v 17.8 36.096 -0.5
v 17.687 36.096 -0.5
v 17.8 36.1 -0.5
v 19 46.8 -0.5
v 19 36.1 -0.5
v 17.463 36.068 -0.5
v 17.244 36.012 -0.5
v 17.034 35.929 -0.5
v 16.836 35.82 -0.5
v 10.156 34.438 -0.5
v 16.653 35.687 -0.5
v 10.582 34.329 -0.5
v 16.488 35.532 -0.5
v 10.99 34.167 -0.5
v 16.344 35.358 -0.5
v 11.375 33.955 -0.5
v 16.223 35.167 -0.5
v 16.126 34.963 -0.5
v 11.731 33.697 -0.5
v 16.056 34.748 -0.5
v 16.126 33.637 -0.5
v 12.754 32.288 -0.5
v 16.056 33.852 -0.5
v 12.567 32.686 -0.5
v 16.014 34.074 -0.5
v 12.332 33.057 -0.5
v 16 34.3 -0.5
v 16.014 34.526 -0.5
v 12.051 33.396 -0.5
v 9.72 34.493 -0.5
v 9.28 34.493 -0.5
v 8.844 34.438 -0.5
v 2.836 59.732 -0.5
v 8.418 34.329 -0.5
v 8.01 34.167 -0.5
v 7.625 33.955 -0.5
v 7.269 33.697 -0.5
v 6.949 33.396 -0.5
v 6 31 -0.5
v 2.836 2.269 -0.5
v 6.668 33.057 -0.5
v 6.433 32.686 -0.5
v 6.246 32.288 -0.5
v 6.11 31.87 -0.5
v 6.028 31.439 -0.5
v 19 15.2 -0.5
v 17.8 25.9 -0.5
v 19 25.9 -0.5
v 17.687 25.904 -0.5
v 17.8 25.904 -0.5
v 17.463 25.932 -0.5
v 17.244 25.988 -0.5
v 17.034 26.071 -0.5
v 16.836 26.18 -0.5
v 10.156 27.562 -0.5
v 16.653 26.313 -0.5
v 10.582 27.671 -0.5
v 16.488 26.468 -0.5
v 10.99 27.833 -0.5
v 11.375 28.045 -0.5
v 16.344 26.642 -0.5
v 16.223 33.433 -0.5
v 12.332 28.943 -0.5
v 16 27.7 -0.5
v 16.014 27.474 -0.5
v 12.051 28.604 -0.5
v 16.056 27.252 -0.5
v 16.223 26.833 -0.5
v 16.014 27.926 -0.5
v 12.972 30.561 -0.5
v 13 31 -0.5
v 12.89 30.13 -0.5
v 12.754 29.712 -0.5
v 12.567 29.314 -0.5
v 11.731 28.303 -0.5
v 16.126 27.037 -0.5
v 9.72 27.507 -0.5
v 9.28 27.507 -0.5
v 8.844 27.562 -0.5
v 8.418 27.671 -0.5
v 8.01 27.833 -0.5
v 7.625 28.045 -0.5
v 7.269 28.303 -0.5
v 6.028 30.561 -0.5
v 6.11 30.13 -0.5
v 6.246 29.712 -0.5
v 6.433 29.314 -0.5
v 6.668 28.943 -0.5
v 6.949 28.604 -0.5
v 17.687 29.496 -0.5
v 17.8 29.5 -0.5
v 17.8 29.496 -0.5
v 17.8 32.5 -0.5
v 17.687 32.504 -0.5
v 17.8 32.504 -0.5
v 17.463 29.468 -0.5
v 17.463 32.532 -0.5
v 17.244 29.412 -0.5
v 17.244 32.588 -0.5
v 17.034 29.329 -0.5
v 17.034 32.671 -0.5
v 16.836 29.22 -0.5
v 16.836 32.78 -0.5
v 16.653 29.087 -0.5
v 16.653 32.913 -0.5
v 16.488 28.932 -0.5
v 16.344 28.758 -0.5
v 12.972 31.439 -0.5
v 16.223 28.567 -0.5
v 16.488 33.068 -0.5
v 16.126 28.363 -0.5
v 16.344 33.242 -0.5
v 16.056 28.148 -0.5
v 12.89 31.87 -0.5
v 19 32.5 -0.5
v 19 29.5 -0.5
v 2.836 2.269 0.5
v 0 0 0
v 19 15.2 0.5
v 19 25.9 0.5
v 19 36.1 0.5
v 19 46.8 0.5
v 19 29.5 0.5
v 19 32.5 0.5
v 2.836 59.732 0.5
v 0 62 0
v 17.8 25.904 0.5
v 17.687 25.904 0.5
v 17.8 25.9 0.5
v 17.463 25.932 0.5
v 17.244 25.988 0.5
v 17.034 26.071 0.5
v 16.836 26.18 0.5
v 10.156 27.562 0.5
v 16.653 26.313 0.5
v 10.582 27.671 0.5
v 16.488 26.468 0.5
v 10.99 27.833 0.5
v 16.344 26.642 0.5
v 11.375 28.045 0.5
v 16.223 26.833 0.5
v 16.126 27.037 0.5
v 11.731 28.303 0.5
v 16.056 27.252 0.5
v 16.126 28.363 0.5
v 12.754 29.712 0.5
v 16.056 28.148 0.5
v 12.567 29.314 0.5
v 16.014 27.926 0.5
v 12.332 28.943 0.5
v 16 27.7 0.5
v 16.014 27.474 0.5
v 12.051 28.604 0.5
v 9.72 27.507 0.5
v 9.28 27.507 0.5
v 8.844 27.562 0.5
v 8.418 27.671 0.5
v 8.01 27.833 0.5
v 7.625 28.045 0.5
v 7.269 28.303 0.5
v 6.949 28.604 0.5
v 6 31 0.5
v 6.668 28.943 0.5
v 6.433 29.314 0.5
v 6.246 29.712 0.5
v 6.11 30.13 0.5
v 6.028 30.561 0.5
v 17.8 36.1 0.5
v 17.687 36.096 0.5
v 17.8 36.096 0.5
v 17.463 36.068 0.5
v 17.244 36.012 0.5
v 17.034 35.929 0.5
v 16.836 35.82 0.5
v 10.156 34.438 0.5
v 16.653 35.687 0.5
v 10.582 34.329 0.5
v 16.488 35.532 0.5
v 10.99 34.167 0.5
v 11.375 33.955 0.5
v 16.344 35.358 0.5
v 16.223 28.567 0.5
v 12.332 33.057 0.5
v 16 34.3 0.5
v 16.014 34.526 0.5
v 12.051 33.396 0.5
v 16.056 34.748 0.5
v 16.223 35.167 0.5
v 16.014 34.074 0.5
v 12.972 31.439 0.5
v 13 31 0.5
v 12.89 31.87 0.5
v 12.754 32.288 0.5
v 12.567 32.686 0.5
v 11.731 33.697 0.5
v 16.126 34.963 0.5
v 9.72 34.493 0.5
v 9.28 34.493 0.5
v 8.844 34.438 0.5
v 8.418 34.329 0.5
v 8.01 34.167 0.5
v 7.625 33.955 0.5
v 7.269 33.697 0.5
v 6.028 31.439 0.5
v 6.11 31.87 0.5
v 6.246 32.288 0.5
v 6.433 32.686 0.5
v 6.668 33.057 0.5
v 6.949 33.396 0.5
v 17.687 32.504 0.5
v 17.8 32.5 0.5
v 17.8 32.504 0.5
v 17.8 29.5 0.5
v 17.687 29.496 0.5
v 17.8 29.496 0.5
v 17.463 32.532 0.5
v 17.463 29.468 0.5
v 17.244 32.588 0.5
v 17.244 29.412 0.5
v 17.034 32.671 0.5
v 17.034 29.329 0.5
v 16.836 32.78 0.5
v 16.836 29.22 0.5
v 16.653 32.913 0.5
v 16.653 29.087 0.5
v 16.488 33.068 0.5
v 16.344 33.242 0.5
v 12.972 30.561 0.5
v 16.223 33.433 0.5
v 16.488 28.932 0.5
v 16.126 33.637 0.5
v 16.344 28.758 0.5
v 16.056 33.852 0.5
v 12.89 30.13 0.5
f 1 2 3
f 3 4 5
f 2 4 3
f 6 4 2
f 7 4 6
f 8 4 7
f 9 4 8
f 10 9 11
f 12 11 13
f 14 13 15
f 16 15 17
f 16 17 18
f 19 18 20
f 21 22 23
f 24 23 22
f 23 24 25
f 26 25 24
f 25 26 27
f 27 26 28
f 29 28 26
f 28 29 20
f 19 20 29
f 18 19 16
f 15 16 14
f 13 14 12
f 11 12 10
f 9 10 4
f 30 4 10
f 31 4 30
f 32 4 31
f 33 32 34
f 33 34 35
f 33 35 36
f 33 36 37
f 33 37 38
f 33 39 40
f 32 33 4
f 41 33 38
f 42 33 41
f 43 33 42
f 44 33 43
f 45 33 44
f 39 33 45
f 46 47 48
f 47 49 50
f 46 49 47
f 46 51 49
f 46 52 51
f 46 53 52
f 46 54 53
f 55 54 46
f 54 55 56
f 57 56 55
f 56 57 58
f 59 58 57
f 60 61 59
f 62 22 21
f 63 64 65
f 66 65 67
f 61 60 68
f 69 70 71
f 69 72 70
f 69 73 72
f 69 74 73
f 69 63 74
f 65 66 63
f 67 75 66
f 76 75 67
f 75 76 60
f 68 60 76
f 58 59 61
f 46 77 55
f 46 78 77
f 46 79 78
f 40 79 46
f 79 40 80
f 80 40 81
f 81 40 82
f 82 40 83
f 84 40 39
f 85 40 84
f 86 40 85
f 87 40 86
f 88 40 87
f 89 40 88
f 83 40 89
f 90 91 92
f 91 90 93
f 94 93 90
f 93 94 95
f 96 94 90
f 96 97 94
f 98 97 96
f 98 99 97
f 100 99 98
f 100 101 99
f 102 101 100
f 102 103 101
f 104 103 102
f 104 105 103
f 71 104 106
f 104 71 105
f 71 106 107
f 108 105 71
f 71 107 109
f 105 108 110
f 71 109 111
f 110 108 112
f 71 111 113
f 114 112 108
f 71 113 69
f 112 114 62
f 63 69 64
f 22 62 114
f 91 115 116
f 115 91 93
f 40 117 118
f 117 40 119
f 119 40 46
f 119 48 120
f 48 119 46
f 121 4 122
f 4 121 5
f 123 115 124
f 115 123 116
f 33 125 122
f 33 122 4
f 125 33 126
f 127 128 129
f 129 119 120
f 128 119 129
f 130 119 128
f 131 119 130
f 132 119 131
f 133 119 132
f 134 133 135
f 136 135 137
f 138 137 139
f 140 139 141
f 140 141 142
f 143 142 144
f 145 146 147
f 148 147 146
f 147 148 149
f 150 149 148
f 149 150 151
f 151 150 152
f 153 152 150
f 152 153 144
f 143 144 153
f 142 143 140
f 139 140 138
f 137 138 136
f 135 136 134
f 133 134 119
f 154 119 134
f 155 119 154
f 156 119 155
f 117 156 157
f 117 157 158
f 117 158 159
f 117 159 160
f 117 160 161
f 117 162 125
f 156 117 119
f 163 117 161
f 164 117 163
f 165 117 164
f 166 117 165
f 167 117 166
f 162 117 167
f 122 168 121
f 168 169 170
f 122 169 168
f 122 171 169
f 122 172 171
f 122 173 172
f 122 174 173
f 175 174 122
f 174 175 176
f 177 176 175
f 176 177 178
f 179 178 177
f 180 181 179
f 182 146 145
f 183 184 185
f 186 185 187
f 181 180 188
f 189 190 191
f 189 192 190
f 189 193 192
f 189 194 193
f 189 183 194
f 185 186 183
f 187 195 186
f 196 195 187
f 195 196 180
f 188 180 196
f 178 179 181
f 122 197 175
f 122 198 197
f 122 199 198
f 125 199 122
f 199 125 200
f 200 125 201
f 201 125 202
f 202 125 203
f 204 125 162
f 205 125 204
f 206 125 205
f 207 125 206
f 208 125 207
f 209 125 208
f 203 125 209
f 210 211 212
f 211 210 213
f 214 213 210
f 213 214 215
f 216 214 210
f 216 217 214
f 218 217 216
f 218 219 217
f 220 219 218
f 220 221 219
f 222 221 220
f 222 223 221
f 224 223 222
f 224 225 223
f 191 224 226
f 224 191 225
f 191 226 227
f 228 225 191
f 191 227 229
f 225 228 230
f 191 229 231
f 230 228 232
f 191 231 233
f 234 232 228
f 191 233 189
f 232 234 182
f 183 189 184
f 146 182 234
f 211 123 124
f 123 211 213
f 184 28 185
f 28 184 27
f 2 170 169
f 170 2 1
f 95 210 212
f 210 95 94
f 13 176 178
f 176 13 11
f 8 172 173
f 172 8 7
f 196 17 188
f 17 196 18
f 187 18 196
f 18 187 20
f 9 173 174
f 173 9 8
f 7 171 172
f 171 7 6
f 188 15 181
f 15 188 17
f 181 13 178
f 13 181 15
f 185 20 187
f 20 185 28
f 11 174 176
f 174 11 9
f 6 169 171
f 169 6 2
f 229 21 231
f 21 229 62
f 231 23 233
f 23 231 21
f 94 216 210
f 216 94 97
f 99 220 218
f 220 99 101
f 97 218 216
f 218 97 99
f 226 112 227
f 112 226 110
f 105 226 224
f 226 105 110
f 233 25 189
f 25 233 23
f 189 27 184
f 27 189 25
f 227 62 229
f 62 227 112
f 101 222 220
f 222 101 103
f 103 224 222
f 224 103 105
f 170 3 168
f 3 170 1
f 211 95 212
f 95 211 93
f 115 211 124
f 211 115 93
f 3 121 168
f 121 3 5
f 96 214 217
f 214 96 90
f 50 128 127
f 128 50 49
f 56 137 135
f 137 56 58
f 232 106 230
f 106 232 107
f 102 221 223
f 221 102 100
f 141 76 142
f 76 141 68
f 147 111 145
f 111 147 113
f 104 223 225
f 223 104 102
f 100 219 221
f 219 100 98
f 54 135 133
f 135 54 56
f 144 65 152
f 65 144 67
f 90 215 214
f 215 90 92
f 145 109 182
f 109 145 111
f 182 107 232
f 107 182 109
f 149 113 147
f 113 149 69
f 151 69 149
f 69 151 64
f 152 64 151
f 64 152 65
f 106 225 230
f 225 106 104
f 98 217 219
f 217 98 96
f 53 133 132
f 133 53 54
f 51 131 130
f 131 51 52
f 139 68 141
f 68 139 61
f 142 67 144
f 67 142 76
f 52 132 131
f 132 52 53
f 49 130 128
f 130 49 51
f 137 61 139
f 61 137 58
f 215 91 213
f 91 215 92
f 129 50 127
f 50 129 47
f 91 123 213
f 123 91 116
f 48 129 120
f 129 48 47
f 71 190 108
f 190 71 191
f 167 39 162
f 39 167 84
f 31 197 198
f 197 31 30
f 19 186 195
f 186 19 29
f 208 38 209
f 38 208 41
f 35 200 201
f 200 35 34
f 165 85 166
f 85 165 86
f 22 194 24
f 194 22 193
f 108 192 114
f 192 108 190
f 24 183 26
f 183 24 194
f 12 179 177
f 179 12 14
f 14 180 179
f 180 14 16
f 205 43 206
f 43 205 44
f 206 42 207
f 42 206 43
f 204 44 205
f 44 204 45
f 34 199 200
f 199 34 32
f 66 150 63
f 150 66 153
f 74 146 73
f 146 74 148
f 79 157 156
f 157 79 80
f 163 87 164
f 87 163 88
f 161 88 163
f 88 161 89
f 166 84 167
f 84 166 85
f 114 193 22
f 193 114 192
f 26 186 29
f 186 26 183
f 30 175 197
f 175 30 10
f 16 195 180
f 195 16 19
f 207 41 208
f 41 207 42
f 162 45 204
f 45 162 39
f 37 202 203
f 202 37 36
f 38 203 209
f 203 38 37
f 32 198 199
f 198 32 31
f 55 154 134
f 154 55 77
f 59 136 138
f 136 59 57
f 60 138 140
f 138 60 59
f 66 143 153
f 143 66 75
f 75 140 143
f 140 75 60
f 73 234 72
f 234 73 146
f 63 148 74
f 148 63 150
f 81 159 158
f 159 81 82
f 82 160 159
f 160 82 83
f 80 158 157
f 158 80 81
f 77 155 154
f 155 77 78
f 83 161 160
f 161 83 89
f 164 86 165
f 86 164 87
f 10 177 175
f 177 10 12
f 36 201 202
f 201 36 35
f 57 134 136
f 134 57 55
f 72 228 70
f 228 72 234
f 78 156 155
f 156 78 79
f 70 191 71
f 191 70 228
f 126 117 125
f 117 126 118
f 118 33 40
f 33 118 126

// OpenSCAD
// Stanley Knife Blade
// (units mm)
// 
//
//

lenCE=62;    	// Length of the cutting edge
lenBE=31.6;		// Length of back edge 
width=19;		// Width (cutting edge to back edge)
mid=lenCE/2;		// Midpoint 
rb=3.6/2;    	// Radius of recess
rdepth=3;		// Recess depth;
rfm=3/2 + rb; // Distance of middle of the recess from mid len  
bladethickness=1; // really 0.6
cut=bladethickness+4;

// optional hole in the middle for screws
holerad = 7.0/2;
holedepth = 13; // from top of blade

// Outline of the blade
module bladeOL() {
	linear_extrude(height=bladethickness)
	  polygon(points=[[0,0],[0,lenCE],[width,mid+(lenBE/2)],[width,mid-(lenBE/2)]]);
}

// Outline and Cutouts
module bladeCU(useAsDifference) {
local_rb = useAsDifference ? rb-0.3 : rb;
local_rfm = useAsDifference ? rfm : rfm;
local_holerad = useAsDifference ? holerad-0.3 : holerad;

	difference () {

		bladeOL();

    // blade holder hole 1
		translate([width-(rdepth-local_rb),mid+local_rfm,-1]) cylinder(r=local_rb,h=cut,$fn=50);
       // blade holder depth hole 1
		translate([width-(rdepth-local_rb),mid+local_rfm-local_rb,-1]) cube([width,local_rb*2,cut]);

    // blade holder hole 2
		translate([width-(rdepth-local_rb),mid-local_rfm,-1]) cylinder(r=local_rb,h=cut,$fn=50);
        // blade holder depth hole 2
		translate([width-(rdepth-local_rb),mid-local_rfm-local_rb,-1]) cube([width,local_rb*2,cut]);

    // middle hole
		translate([width-(holedepth-local_holerad),mid,-1]) cylinder(r=local_holerad,h=cut,$fn=50);
	}
}

// A sharp blade
module blade(useAsDifference) {
    
     sharpness_degrees = useAsDifference ? 14 : 10;
    
	difference() {
		translate([0,0,-bladethickness/2]) bladeCU(useAsDifference);
		rotate([0,-sharpness_degrees,0]) cube([width/2,lenCE+2,10]);
		rotate([0,sharpness_degrees,0]) translate([0,0,-10]) cube([width/2,lenCE+2,10]);
	}
}


blade(false);

// check gradient manually
//color("white") rotate([0,0,-51.34]) translate([0,0,-bladethickness/2]) cube([50,50,bladethickness]);
